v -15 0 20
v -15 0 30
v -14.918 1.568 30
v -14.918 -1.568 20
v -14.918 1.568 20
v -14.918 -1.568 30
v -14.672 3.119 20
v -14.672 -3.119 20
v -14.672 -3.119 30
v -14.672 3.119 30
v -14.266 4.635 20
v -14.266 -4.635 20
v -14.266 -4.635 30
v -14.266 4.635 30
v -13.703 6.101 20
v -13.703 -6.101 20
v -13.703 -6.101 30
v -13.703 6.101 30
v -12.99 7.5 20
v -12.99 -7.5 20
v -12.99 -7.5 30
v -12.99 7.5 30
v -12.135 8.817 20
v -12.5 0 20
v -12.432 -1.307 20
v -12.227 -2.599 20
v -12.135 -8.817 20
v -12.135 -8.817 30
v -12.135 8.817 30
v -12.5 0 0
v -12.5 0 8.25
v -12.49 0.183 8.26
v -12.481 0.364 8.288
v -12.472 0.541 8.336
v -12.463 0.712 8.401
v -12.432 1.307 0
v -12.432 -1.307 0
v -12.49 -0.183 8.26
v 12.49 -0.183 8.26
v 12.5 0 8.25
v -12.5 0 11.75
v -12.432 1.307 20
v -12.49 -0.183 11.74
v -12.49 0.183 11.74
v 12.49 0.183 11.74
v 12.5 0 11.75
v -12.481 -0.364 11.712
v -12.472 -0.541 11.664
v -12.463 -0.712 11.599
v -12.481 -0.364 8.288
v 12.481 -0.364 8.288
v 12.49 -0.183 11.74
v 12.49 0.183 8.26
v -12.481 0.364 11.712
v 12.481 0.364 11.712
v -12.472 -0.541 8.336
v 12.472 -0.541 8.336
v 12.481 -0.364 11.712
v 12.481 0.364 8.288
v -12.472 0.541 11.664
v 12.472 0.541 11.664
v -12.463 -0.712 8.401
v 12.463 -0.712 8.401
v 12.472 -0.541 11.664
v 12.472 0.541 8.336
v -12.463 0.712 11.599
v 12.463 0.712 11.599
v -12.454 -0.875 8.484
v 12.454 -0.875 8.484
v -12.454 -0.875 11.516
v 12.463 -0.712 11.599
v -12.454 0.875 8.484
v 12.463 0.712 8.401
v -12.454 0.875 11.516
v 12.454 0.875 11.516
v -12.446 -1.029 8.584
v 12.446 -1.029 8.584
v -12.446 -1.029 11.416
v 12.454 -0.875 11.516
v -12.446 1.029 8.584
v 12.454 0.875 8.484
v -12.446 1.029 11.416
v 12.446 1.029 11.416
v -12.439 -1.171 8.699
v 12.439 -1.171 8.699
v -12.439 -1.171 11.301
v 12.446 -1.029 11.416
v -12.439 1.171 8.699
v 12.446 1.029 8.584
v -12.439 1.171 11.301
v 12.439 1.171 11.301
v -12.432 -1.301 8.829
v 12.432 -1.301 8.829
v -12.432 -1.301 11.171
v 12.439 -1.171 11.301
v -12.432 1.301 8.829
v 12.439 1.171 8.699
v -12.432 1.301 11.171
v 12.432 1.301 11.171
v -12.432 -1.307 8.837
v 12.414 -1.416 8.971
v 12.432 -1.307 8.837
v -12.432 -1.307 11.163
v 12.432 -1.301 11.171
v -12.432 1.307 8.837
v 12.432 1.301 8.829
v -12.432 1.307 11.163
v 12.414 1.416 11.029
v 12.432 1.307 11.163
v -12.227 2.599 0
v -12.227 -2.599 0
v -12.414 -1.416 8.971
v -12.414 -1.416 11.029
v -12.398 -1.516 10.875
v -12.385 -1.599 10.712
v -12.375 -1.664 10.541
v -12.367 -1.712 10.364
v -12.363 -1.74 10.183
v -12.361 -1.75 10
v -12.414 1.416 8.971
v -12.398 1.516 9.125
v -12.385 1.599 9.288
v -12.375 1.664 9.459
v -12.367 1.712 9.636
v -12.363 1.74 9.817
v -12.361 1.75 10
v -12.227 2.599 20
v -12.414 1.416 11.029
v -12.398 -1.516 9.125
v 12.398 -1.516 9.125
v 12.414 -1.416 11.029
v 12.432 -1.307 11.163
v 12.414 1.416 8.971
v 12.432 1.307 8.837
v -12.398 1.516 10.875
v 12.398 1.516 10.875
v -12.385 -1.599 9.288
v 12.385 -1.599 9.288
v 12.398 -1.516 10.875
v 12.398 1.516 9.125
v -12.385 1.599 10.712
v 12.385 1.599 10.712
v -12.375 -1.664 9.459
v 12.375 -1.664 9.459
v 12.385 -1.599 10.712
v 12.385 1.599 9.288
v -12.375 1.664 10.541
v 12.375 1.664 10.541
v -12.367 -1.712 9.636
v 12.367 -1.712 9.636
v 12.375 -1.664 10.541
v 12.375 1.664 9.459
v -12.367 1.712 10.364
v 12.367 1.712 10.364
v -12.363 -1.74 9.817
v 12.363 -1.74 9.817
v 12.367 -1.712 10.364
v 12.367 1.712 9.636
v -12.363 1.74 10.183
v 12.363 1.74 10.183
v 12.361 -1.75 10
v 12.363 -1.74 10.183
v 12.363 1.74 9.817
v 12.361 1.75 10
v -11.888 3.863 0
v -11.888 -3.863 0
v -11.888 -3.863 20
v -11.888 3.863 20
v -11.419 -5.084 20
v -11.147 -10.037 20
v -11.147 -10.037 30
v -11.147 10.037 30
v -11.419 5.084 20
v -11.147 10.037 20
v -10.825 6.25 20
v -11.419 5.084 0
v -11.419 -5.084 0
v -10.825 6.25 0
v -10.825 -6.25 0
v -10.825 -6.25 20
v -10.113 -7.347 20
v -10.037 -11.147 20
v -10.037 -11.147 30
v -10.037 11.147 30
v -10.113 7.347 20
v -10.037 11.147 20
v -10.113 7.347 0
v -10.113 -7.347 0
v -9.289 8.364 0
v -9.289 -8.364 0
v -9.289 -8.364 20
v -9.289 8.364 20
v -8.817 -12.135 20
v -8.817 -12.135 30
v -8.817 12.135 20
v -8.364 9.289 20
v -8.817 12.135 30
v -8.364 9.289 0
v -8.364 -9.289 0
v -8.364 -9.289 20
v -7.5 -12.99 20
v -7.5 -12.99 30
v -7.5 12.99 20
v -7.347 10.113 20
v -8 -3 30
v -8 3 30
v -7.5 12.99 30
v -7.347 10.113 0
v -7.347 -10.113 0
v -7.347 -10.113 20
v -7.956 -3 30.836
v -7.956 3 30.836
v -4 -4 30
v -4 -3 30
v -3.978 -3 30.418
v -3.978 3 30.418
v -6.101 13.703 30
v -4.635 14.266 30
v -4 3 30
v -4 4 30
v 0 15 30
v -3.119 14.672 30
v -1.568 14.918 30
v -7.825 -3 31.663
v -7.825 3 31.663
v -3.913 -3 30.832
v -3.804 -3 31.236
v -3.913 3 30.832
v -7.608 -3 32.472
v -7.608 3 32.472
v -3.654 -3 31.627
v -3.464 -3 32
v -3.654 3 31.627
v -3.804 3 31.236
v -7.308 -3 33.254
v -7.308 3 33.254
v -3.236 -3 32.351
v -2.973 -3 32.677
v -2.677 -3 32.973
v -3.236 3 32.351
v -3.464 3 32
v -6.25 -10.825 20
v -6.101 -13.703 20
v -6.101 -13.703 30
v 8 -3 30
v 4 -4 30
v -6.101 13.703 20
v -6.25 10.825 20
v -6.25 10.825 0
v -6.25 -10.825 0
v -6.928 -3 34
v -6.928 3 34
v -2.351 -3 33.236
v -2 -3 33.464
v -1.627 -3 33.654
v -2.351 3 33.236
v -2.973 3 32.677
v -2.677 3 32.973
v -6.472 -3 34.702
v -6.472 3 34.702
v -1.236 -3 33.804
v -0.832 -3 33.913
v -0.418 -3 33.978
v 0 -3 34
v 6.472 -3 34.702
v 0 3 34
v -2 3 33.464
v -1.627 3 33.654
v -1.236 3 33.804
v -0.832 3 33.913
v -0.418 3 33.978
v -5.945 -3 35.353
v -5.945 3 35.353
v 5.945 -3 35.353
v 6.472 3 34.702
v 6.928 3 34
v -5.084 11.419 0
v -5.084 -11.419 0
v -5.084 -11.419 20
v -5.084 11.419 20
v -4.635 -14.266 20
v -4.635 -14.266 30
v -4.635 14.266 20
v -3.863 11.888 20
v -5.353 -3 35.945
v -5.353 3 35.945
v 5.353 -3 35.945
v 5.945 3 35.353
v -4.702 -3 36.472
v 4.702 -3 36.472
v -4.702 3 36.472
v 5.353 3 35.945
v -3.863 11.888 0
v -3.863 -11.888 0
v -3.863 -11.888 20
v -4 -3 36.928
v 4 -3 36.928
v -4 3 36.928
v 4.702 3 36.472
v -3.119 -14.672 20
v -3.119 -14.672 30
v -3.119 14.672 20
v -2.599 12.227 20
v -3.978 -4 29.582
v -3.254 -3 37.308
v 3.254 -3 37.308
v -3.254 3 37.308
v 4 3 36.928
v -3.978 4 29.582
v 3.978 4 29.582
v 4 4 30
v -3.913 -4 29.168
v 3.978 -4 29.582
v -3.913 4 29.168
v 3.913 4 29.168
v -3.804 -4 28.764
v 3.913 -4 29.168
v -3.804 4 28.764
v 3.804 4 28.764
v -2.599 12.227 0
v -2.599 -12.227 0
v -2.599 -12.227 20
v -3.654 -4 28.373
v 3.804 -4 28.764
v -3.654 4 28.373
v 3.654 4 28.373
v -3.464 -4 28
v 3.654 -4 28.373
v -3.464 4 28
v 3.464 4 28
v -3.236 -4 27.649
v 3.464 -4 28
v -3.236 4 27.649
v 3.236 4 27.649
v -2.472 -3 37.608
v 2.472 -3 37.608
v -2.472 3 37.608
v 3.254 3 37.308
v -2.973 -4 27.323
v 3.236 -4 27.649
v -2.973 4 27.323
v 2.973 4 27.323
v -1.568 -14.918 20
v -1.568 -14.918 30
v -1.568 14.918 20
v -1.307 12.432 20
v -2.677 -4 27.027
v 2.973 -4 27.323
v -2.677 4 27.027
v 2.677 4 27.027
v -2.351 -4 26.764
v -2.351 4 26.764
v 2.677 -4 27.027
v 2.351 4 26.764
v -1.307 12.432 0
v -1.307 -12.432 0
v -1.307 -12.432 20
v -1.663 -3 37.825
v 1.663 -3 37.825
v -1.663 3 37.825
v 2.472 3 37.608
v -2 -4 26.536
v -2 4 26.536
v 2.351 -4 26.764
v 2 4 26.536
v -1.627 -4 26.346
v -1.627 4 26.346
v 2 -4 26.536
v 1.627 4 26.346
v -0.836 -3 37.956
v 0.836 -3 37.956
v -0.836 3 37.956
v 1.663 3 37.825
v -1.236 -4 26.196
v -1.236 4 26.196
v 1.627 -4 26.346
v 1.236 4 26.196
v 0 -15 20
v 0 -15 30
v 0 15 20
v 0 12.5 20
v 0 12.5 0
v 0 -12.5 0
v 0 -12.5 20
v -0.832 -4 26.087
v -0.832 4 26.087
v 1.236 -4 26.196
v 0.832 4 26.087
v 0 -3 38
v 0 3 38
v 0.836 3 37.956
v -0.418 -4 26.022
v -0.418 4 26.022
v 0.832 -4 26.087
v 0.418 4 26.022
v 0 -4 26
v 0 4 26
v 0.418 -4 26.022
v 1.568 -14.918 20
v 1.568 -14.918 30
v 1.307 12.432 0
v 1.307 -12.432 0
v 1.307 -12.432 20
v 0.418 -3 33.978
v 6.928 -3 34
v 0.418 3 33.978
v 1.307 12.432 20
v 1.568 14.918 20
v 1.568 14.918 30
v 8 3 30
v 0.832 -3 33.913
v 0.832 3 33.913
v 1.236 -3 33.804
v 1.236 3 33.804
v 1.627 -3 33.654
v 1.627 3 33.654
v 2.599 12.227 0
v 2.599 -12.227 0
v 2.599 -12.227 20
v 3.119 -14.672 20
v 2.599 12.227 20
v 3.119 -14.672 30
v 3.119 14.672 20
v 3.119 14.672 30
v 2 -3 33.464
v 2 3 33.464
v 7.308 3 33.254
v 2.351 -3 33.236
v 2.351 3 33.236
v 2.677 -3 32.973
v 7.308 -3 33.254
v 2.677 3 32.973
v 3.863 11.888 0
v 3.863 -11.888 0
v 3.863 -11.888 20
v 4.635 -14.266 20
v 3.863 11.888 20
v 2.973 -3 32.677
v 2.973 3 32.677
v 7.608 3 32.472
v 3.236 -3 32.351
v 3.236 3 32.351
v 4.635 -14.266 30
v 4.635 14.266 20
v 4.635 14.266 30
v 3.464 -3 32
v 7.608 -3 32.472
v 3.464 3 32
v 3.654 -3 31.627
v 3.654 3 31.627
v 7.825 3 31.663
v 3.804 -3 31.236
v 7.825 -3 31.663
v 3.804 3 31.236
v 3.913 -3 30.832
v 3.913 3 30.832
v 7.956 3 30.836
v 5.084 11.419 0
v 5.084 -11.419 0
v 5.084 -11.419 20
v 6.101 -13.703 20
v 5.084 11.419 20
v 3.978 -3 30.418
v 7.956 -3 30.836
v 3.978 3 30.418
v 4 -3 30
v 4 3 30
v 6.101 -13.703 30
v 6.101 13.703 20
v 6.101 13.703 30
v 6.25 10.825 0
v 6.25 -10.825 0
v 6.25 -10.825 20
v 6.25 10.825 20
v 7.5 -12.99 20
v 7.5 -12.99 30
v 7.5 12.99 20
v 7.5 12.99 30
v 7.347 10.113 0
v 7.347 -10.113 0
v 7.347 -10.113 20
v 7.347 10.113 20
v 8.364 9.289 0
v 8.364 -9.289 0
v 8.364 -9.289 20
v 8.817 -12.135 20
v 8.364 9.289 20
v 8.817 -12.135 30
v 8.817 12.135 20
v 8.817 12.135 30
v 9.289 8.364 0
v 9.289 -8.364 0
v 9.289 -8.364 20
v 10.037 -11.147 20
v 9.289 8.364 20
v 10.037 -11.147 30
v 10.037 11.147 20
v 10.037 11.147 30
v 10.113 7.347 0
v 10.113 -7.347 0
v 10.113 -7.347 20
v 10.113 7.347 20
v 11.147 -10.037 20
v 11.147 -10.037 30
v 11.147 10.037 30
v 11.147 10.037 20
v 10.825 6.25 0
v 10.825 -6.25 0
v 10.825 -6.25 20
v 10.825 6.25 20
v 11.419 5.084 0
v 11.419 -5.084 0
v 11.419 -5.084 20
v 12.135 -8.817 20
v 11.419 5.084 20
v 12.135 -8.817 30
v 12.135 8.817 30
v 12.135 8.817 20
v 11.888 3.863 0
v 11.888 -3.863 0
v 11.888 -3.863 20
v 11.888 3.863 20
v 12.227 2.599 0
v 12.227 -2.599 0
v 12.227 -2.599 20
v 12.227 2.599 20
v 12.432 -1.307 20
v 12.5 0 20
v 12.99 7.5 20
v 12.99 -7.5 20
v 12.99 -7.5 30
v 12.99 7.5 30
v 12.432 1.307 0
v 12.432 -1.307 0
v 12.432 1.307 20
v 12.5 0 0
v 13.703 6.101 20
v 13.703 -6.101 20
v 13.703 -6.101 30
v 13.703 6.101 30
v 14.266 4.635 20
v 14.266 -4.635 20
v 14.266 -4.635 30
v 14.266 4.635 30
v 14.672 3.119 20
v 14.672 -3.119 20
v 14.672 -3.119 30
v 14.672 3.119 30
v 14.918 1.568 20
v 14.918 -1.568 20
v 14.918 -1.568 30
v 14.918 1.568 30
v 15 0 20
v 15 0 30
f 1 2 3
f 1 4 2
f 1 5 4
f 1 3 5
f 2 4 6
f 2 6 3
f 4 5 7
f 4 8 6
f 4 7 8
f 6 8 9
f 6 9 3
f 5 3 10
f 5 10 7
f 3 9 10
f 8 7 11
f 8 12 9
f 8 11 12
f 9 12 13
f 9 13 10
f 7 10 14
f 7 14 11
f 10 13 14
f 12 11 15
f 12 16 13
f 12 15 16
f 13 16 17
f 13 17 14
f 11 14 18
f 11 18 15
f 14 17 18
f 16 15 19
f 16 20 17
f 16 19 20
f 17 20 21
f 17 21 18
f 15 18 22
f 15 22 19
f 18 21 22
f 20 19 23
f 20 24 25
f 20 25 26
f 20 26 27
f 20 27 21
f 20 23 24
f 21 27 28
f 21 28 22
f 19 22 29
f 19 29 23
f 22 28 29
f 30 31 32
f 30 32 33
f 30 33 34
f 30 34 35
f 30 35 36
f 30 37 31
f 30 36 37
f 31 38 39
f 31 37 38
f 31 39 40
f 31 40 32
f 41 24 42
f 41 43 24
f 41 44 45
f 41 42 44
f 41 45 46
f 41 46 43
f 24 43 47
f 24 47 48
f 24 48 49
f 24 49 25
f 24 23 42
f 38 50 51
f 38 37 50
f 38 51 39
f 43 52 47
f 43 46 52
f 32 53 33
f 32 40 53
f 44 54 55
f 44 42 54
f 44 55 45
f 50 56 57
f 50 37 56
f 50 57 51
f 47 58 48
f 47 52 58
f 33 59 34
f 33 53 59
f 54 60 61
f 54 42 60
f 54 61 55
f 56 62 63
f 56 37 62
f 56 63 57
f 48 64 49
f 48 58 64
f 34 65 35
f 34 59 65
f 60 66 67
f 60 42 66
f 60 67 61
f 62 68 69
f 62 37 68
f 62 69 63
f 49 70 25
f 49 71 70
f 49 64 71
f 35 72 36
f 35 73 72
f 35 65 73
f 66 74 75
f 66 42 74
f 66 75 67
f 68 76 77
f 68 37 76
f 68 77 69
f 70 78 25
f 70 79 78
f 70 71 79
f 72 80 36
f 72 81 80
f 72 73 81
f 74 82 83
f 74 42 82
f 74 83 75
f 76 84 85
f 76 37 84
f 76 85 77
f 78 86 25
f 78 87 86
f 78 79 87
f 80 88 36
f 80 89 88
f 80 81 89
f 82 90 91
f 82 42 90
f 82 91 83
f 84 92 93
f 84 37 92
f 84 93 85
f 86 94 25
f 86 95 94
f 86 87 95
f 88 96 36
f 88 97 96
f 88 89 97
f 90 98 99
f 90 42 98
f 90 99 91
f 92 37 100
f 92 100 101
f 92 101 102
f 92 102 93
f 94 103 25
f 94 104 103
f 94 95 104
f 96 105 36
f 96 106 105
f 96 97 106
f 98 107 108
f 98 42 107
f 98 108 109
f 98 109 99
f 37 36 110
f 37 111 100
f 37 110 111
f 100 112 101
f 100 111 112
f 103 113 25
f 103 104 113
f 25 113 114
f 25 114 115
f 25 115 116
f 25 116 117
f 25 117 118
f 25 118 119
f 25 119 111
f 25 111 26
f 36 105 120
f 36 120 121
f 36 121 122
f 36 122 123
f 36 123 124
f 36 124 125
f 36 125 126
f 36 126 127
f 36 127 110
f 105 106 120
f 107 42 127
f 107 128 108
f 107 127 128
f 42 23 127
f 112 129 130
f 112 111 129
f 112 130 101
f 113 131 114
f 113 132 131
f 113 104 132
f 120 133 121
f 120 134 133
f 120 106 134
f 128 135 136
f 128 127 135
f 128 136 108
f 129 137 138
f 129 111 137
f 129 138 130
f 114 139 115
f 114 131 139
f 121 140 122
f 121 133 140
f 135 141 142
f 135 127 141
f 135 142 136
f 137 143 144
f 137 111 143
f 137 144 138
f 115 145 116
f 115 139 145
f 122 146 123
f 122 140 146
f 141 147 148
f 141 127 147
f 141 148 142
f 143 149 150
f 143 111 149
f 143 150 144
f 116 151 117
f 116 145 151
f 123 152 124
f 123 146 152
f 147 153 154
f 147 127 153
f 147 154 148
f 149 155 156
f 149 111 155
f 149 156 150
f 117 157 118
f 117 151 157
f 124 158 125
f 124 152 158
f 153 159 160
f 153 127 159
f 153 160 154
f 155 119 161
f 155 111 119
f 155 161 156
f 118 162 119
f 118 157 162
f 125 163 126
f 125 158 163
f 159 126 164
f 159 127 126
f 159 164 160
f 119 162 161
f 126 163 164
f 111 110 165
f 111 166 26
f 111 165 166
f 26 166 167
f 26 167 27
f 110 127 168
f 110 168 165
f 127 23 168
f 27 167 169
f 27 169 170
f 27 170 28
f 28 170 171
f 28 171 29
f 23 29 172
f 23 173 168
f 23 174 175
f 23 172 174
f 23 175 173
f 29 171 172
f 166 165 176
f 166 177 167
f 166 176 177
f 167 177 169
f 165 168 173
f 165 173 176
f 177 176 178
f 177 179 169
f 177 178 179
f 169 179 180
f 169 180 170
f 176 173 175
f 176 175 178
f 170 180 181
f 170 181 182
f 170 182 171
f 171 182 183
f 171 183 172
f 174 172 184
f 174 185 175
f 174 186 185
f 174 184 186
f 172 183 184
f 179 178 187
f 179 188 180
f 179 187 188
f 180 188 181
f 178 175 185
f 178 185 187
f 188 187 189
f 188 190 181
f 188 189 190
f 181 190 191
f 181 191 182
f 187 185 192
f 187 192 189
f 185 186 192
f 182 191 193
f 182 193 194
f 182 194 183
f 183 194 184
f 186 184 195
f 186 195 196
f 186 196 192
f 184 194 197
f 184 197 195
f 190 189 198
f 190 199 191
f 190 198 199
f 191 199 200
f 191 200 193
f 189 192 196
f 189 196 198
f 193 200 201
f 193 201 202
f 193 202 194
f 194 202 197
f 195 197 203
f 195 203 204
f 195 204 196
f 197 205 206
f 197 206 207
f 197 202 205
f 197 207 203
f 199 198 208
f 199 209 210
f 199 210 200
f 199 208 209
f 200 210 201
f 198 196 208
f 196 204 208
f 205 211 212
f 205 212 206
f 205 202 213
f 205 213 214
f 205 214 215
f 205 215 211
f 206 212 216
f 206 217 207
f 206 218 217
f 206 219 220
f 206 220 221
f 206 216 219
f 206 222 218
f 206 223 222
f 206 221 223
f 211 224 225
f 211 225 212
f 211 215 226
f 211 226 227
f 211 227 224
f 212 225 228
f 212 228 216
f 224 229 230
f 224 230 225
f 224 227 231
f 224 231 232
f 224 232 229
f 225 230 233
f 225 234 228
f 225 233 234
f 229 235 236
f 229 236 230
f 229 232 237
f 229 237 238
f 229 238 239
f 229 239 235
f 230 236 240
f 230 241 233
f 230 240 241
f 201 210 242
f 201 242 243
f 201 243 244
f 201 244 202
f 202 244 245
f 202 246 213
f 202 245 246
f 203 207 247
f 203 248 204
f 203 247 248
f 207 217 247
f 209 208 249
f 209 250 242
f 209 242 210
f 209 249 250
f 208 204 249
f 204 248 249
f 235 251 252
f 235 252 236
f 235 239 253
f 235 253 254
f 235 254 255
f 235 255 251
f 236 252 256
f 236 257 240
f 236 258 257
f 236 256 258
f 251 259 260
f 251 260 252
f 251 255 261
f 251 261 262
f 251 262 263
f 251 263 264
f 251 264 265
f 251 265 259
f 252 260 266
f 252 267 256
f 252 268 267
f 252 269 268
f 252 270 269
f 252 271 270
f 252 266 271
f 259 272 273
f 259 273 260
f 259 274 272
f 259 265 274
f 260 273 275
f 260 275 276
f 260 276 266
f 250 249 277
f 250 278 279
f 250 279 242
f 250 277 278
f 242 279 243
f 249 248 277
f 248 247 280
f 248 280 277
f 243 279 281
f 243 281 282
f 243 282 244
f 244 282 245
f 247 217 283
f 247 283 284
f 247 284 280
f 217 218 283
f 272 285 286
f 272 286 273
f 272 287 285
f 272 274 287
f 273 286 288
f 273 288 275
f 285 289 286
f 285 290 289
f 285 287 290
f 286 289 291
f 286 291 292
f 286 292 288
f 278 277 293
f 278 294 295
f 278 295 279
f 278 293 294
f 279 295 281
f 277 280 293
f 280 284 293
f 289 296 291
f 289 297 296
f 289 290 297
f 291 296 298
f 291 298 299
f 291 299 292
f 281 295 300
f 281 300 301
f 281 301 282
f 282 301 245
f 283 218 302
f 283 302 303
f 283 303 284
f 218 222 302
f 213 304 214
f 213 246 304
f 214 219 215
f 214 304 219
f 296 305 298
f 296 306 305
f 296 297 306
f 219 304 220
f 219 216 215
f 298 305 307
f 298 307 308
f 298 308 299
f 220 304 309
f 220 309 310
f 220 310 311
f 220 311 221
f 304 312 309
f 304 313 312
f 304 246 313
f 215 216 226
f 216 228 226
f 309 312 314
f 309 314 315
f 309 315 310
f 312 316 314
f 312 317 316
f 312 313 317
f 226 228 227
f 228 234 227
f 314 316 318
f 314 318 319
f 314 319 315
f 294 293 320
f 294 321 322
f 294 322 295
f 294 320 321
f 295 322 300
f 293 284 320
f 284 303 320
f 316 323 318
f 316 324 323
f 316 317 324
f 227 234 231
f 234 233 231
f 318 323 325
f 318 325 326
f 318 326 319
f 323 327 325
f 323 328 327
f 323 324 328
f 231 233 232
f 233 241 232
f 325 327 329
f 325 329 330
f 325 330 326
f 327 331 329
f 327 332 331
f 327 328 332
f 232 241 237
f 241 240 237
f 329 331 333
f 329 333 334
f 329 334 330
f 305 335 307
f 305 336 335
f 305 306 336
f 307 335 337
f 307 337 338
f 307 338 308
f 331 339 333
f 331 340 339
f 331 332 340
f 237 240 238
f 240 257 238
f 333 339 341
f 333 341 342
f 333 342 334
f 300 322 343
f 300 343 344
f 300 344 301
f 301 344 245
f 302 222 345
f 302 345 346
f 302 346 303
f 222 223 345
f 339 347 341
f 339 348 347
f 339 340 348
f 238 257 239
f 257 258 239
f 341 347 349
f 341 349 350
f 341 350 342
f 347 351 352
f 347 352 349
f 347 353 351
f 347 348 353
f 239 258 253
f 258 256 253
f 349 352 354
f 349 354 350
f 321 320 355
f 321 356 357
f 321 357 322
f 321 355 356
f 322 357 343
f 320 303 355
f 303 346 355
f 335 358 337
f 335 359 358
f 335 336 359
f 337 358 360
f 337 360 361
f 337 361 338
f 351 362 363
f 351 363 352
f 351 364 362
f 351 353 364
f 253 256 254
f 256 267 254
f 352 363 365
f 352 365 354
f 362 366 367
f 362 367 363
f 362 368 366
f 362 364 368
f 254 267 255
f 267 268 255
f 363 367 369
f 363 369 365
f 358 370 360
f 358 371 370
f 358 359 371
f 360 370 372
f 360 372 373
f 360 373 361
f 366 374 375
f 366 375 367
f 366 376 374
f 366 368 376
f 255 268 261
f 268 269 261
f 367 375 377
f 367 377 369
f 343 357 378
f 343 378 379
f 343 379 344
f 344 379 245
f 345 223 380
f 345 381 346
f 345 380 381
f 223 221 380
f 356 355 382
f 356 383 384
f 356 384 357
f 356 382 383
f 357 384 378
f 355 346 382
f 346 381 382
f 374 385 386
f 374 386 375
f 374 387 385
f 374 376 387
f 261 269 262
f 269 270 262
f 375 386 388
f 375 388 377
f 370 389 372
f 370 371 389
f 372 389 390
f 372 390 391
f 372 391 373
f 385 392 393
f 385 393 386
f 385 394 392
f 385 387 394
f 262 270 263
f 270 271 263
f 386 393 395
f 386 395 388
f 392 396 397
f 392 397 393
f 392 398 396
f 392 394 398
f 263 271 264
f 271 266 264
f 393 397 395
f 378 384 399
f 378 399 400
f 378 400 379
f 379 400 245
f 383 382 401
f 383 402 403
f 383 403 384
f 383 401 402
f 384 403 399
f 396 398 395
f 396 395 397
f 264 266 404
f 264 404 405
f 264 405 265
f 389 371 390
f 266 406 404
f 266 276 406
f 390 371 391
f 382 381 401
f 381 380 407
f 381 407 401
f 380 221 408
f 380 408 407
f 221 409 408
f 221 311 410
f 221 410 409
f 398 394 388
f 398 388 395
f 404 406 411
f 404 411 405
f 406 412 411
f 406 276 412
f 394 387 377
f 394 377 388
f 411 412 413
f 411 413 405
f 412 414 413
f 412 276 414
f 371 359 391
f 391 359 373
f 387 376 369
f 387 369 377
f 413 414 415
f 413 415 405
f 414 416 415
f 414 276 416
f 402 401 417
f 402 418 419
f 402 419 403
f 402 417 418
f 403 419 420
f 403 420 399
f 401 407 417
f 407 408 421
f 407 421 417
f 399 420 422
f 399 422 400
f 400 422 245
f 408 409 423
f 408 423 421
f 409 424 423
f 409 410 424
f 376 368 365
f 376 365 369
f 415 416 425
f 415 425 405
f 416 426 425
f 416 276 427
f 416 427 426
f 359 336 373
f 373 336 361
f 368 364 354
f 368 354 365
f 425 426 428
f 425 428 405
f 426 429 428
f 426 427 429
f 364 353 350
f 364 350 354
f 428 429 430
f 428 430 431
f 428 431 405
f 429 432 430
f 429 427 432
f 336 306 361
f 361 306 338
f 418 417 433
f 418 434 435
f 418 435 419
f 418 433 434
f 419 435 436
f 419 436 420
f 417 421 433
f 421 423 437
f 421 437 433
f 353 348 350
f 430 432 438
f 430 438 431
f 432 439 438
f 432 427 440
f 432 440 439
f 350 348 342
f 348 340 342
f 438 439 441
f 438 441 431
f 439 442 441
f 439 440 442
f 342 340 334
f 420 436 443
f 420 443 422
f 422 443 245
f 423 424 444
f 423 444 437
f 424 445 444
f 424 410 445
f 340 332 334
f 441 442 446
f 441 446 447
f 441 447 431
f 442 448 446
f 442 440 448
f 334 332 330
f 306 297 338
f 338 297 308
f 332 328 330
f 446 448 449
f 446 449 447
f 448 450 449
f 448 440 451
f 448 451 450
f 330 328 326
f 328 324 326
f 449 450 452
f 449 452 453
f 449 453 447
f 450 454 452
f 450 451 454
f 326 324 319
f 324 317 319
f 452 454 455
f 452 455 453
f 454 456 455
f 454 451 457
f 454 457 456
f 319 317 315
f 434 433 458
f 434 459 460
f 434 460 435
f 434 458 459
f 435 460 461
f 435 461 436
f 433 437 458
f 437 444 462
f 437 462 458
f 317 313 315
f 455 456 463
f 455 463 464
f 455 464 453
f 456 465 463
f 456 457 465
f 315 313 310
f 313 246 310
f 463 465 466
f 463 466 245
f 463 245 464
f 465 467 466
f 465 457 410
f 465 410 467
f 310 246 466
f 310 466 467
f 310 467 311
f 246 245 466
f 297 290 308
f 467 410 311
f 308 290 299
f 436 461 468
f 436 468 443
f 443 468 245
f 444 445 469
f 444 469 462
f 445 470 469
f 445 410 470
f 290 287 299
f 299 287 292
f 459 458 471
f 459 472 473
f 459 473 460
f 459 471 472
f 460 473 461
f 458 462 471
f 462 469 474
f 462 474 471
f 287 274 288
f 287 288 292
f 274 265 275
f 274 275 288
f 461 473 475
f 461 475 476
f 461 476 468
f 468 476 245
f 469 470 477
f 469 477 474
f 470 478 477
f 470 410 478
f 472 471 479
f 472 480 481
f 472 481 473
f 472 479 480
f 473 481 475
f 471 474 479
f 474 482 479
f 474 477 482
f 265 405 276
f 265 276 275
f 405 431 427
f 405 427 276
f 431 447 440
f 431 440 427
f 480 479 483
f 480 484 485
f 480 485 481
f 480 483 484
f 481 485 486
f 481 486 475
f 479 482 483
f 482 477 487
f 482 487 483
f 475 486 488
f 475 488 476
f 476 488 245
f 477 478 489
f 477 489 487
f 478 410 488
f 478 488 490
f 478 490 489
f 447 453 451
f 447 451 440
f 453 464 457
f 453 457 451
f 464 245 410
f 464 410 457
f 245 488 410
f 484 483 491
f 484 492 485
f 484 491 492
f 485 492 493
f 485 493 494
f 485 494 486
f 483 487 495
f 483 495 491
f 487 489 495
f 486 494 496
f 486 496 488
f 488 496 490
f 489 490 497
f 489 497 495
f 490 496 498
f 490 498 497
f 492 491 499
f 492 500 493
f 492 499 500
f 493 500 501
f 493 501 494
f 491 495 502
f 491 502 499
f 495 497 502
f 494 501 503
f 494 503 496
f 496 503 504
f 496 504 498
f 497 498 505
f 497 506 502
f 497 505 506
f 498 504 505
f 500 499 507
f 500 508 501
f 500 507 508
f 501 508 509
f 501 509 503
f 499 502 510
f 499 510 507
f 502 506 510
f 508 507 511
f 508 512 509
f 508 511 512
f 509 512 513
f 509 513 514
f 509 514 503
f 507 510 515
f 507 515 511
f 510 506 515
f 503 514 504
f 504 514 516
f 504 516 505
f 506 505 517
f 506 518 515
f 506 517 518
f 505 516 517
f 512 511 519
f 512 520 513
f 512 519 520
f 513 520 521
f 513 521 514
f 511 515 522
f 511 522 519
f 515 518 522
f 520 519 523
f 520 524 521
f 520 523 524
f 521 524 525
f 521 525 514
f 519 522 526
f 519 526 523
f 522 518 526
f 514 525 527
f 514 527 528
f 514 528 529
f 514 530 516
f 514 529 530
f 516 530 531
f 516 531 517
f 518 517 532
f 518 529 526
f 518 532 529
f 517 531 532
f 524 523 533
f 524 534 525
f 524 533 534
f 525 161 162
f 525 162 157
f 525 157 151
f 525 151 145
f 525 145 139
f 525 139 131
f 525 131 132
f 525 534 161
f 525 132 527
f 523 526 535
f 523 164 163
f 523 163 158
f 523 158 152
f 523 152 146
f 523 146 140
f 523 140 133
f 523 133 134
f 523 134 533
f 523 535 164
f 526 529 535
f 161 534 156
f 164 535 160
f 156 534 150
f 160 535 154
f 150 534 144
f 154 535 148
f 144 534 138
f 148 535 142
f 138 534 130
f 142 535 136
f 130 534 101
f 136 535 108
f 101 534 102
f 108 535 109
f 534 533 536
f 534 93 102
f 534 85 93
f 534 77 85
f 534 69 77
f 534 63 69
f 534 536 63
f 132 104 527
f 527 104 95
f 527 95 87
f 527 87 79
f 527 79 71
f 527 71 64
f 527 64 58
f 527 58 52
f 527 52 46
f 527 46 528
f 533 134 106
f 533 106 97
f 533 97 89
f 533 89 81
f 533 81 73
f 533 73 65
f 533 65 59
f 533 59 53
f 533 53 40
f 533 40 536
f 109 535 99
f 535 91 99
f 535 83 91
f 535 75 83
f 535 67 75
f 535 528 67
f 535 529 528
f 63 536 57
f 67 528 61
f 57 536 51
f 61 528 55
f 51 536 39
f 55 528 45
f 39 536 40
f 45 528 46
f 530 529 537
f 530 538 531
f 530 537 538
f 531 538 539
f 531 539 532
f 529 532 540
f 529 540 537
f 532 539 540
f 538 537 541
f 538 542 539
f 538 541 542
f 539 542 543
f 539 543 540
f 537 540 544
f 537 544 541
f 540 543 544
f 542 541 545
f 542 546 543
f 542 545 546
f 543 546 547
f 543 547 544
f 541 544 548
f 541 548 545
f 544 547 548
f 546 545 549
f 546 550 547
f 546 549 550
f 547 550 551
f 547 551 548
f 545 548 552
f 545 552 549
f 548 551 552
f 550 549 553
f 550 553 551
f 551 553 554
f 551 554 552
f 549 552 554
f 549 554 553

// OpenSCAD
// file: ../../nunchuck-chain-attachment.scad
// OpenSCAD script for Pool Nunchuck Chain Attachment

module nunChuckChainAttachment(
    outer_diameter = 30,
    plug_diameter = 25,
    plug_length = 20,
    cap_height = 10,
    eyelet_outer_radius = 8,
    eyelet_inner_radius = 4,
    wall_thickness = 3,
    screw_hole_diameter = 3.5,
    $fn = 60
) {
    difference() {
        union() {
            // Plug portion (fits into nunchuck handle core)
            cylinder(d = plug_diameter, h = plug_length);

            // Cap rim collar
            translate([0, 0, plug_length])
                cylinder(d = outer_diameter, h = cap_height);

            // Top eyelet loop for chain or rope attachment
            translate([0, 0, plug_length + cap_height])
                rotate([90, 0, 0])
                    cylinder(r = eyelet_outer_radius, h = wall_thickness * 2, center = true);
        }

        // Cross-screw hole to secure attachment to handle
        translate([0, 0, plug_length / 2])
            rotate([0, 90, 0])
                cylinder(d = screw_hole_diameter, h = outer_diameter + 10, center = true);

        // Chain loop hole
        translate([0, 0, plug_length + cap_height])
            rotate([90, 0, 0])
                cylinder(r = eyelet_inner_radius, h = wall_thickness * 2 + 2, center = true);
    }
}
// main file
// Default sample instantiation for Pool Nunchuck Chain Attachment

use <../../nunchuck-chain-attachment.scad>

nunChuckChainAttachment();
